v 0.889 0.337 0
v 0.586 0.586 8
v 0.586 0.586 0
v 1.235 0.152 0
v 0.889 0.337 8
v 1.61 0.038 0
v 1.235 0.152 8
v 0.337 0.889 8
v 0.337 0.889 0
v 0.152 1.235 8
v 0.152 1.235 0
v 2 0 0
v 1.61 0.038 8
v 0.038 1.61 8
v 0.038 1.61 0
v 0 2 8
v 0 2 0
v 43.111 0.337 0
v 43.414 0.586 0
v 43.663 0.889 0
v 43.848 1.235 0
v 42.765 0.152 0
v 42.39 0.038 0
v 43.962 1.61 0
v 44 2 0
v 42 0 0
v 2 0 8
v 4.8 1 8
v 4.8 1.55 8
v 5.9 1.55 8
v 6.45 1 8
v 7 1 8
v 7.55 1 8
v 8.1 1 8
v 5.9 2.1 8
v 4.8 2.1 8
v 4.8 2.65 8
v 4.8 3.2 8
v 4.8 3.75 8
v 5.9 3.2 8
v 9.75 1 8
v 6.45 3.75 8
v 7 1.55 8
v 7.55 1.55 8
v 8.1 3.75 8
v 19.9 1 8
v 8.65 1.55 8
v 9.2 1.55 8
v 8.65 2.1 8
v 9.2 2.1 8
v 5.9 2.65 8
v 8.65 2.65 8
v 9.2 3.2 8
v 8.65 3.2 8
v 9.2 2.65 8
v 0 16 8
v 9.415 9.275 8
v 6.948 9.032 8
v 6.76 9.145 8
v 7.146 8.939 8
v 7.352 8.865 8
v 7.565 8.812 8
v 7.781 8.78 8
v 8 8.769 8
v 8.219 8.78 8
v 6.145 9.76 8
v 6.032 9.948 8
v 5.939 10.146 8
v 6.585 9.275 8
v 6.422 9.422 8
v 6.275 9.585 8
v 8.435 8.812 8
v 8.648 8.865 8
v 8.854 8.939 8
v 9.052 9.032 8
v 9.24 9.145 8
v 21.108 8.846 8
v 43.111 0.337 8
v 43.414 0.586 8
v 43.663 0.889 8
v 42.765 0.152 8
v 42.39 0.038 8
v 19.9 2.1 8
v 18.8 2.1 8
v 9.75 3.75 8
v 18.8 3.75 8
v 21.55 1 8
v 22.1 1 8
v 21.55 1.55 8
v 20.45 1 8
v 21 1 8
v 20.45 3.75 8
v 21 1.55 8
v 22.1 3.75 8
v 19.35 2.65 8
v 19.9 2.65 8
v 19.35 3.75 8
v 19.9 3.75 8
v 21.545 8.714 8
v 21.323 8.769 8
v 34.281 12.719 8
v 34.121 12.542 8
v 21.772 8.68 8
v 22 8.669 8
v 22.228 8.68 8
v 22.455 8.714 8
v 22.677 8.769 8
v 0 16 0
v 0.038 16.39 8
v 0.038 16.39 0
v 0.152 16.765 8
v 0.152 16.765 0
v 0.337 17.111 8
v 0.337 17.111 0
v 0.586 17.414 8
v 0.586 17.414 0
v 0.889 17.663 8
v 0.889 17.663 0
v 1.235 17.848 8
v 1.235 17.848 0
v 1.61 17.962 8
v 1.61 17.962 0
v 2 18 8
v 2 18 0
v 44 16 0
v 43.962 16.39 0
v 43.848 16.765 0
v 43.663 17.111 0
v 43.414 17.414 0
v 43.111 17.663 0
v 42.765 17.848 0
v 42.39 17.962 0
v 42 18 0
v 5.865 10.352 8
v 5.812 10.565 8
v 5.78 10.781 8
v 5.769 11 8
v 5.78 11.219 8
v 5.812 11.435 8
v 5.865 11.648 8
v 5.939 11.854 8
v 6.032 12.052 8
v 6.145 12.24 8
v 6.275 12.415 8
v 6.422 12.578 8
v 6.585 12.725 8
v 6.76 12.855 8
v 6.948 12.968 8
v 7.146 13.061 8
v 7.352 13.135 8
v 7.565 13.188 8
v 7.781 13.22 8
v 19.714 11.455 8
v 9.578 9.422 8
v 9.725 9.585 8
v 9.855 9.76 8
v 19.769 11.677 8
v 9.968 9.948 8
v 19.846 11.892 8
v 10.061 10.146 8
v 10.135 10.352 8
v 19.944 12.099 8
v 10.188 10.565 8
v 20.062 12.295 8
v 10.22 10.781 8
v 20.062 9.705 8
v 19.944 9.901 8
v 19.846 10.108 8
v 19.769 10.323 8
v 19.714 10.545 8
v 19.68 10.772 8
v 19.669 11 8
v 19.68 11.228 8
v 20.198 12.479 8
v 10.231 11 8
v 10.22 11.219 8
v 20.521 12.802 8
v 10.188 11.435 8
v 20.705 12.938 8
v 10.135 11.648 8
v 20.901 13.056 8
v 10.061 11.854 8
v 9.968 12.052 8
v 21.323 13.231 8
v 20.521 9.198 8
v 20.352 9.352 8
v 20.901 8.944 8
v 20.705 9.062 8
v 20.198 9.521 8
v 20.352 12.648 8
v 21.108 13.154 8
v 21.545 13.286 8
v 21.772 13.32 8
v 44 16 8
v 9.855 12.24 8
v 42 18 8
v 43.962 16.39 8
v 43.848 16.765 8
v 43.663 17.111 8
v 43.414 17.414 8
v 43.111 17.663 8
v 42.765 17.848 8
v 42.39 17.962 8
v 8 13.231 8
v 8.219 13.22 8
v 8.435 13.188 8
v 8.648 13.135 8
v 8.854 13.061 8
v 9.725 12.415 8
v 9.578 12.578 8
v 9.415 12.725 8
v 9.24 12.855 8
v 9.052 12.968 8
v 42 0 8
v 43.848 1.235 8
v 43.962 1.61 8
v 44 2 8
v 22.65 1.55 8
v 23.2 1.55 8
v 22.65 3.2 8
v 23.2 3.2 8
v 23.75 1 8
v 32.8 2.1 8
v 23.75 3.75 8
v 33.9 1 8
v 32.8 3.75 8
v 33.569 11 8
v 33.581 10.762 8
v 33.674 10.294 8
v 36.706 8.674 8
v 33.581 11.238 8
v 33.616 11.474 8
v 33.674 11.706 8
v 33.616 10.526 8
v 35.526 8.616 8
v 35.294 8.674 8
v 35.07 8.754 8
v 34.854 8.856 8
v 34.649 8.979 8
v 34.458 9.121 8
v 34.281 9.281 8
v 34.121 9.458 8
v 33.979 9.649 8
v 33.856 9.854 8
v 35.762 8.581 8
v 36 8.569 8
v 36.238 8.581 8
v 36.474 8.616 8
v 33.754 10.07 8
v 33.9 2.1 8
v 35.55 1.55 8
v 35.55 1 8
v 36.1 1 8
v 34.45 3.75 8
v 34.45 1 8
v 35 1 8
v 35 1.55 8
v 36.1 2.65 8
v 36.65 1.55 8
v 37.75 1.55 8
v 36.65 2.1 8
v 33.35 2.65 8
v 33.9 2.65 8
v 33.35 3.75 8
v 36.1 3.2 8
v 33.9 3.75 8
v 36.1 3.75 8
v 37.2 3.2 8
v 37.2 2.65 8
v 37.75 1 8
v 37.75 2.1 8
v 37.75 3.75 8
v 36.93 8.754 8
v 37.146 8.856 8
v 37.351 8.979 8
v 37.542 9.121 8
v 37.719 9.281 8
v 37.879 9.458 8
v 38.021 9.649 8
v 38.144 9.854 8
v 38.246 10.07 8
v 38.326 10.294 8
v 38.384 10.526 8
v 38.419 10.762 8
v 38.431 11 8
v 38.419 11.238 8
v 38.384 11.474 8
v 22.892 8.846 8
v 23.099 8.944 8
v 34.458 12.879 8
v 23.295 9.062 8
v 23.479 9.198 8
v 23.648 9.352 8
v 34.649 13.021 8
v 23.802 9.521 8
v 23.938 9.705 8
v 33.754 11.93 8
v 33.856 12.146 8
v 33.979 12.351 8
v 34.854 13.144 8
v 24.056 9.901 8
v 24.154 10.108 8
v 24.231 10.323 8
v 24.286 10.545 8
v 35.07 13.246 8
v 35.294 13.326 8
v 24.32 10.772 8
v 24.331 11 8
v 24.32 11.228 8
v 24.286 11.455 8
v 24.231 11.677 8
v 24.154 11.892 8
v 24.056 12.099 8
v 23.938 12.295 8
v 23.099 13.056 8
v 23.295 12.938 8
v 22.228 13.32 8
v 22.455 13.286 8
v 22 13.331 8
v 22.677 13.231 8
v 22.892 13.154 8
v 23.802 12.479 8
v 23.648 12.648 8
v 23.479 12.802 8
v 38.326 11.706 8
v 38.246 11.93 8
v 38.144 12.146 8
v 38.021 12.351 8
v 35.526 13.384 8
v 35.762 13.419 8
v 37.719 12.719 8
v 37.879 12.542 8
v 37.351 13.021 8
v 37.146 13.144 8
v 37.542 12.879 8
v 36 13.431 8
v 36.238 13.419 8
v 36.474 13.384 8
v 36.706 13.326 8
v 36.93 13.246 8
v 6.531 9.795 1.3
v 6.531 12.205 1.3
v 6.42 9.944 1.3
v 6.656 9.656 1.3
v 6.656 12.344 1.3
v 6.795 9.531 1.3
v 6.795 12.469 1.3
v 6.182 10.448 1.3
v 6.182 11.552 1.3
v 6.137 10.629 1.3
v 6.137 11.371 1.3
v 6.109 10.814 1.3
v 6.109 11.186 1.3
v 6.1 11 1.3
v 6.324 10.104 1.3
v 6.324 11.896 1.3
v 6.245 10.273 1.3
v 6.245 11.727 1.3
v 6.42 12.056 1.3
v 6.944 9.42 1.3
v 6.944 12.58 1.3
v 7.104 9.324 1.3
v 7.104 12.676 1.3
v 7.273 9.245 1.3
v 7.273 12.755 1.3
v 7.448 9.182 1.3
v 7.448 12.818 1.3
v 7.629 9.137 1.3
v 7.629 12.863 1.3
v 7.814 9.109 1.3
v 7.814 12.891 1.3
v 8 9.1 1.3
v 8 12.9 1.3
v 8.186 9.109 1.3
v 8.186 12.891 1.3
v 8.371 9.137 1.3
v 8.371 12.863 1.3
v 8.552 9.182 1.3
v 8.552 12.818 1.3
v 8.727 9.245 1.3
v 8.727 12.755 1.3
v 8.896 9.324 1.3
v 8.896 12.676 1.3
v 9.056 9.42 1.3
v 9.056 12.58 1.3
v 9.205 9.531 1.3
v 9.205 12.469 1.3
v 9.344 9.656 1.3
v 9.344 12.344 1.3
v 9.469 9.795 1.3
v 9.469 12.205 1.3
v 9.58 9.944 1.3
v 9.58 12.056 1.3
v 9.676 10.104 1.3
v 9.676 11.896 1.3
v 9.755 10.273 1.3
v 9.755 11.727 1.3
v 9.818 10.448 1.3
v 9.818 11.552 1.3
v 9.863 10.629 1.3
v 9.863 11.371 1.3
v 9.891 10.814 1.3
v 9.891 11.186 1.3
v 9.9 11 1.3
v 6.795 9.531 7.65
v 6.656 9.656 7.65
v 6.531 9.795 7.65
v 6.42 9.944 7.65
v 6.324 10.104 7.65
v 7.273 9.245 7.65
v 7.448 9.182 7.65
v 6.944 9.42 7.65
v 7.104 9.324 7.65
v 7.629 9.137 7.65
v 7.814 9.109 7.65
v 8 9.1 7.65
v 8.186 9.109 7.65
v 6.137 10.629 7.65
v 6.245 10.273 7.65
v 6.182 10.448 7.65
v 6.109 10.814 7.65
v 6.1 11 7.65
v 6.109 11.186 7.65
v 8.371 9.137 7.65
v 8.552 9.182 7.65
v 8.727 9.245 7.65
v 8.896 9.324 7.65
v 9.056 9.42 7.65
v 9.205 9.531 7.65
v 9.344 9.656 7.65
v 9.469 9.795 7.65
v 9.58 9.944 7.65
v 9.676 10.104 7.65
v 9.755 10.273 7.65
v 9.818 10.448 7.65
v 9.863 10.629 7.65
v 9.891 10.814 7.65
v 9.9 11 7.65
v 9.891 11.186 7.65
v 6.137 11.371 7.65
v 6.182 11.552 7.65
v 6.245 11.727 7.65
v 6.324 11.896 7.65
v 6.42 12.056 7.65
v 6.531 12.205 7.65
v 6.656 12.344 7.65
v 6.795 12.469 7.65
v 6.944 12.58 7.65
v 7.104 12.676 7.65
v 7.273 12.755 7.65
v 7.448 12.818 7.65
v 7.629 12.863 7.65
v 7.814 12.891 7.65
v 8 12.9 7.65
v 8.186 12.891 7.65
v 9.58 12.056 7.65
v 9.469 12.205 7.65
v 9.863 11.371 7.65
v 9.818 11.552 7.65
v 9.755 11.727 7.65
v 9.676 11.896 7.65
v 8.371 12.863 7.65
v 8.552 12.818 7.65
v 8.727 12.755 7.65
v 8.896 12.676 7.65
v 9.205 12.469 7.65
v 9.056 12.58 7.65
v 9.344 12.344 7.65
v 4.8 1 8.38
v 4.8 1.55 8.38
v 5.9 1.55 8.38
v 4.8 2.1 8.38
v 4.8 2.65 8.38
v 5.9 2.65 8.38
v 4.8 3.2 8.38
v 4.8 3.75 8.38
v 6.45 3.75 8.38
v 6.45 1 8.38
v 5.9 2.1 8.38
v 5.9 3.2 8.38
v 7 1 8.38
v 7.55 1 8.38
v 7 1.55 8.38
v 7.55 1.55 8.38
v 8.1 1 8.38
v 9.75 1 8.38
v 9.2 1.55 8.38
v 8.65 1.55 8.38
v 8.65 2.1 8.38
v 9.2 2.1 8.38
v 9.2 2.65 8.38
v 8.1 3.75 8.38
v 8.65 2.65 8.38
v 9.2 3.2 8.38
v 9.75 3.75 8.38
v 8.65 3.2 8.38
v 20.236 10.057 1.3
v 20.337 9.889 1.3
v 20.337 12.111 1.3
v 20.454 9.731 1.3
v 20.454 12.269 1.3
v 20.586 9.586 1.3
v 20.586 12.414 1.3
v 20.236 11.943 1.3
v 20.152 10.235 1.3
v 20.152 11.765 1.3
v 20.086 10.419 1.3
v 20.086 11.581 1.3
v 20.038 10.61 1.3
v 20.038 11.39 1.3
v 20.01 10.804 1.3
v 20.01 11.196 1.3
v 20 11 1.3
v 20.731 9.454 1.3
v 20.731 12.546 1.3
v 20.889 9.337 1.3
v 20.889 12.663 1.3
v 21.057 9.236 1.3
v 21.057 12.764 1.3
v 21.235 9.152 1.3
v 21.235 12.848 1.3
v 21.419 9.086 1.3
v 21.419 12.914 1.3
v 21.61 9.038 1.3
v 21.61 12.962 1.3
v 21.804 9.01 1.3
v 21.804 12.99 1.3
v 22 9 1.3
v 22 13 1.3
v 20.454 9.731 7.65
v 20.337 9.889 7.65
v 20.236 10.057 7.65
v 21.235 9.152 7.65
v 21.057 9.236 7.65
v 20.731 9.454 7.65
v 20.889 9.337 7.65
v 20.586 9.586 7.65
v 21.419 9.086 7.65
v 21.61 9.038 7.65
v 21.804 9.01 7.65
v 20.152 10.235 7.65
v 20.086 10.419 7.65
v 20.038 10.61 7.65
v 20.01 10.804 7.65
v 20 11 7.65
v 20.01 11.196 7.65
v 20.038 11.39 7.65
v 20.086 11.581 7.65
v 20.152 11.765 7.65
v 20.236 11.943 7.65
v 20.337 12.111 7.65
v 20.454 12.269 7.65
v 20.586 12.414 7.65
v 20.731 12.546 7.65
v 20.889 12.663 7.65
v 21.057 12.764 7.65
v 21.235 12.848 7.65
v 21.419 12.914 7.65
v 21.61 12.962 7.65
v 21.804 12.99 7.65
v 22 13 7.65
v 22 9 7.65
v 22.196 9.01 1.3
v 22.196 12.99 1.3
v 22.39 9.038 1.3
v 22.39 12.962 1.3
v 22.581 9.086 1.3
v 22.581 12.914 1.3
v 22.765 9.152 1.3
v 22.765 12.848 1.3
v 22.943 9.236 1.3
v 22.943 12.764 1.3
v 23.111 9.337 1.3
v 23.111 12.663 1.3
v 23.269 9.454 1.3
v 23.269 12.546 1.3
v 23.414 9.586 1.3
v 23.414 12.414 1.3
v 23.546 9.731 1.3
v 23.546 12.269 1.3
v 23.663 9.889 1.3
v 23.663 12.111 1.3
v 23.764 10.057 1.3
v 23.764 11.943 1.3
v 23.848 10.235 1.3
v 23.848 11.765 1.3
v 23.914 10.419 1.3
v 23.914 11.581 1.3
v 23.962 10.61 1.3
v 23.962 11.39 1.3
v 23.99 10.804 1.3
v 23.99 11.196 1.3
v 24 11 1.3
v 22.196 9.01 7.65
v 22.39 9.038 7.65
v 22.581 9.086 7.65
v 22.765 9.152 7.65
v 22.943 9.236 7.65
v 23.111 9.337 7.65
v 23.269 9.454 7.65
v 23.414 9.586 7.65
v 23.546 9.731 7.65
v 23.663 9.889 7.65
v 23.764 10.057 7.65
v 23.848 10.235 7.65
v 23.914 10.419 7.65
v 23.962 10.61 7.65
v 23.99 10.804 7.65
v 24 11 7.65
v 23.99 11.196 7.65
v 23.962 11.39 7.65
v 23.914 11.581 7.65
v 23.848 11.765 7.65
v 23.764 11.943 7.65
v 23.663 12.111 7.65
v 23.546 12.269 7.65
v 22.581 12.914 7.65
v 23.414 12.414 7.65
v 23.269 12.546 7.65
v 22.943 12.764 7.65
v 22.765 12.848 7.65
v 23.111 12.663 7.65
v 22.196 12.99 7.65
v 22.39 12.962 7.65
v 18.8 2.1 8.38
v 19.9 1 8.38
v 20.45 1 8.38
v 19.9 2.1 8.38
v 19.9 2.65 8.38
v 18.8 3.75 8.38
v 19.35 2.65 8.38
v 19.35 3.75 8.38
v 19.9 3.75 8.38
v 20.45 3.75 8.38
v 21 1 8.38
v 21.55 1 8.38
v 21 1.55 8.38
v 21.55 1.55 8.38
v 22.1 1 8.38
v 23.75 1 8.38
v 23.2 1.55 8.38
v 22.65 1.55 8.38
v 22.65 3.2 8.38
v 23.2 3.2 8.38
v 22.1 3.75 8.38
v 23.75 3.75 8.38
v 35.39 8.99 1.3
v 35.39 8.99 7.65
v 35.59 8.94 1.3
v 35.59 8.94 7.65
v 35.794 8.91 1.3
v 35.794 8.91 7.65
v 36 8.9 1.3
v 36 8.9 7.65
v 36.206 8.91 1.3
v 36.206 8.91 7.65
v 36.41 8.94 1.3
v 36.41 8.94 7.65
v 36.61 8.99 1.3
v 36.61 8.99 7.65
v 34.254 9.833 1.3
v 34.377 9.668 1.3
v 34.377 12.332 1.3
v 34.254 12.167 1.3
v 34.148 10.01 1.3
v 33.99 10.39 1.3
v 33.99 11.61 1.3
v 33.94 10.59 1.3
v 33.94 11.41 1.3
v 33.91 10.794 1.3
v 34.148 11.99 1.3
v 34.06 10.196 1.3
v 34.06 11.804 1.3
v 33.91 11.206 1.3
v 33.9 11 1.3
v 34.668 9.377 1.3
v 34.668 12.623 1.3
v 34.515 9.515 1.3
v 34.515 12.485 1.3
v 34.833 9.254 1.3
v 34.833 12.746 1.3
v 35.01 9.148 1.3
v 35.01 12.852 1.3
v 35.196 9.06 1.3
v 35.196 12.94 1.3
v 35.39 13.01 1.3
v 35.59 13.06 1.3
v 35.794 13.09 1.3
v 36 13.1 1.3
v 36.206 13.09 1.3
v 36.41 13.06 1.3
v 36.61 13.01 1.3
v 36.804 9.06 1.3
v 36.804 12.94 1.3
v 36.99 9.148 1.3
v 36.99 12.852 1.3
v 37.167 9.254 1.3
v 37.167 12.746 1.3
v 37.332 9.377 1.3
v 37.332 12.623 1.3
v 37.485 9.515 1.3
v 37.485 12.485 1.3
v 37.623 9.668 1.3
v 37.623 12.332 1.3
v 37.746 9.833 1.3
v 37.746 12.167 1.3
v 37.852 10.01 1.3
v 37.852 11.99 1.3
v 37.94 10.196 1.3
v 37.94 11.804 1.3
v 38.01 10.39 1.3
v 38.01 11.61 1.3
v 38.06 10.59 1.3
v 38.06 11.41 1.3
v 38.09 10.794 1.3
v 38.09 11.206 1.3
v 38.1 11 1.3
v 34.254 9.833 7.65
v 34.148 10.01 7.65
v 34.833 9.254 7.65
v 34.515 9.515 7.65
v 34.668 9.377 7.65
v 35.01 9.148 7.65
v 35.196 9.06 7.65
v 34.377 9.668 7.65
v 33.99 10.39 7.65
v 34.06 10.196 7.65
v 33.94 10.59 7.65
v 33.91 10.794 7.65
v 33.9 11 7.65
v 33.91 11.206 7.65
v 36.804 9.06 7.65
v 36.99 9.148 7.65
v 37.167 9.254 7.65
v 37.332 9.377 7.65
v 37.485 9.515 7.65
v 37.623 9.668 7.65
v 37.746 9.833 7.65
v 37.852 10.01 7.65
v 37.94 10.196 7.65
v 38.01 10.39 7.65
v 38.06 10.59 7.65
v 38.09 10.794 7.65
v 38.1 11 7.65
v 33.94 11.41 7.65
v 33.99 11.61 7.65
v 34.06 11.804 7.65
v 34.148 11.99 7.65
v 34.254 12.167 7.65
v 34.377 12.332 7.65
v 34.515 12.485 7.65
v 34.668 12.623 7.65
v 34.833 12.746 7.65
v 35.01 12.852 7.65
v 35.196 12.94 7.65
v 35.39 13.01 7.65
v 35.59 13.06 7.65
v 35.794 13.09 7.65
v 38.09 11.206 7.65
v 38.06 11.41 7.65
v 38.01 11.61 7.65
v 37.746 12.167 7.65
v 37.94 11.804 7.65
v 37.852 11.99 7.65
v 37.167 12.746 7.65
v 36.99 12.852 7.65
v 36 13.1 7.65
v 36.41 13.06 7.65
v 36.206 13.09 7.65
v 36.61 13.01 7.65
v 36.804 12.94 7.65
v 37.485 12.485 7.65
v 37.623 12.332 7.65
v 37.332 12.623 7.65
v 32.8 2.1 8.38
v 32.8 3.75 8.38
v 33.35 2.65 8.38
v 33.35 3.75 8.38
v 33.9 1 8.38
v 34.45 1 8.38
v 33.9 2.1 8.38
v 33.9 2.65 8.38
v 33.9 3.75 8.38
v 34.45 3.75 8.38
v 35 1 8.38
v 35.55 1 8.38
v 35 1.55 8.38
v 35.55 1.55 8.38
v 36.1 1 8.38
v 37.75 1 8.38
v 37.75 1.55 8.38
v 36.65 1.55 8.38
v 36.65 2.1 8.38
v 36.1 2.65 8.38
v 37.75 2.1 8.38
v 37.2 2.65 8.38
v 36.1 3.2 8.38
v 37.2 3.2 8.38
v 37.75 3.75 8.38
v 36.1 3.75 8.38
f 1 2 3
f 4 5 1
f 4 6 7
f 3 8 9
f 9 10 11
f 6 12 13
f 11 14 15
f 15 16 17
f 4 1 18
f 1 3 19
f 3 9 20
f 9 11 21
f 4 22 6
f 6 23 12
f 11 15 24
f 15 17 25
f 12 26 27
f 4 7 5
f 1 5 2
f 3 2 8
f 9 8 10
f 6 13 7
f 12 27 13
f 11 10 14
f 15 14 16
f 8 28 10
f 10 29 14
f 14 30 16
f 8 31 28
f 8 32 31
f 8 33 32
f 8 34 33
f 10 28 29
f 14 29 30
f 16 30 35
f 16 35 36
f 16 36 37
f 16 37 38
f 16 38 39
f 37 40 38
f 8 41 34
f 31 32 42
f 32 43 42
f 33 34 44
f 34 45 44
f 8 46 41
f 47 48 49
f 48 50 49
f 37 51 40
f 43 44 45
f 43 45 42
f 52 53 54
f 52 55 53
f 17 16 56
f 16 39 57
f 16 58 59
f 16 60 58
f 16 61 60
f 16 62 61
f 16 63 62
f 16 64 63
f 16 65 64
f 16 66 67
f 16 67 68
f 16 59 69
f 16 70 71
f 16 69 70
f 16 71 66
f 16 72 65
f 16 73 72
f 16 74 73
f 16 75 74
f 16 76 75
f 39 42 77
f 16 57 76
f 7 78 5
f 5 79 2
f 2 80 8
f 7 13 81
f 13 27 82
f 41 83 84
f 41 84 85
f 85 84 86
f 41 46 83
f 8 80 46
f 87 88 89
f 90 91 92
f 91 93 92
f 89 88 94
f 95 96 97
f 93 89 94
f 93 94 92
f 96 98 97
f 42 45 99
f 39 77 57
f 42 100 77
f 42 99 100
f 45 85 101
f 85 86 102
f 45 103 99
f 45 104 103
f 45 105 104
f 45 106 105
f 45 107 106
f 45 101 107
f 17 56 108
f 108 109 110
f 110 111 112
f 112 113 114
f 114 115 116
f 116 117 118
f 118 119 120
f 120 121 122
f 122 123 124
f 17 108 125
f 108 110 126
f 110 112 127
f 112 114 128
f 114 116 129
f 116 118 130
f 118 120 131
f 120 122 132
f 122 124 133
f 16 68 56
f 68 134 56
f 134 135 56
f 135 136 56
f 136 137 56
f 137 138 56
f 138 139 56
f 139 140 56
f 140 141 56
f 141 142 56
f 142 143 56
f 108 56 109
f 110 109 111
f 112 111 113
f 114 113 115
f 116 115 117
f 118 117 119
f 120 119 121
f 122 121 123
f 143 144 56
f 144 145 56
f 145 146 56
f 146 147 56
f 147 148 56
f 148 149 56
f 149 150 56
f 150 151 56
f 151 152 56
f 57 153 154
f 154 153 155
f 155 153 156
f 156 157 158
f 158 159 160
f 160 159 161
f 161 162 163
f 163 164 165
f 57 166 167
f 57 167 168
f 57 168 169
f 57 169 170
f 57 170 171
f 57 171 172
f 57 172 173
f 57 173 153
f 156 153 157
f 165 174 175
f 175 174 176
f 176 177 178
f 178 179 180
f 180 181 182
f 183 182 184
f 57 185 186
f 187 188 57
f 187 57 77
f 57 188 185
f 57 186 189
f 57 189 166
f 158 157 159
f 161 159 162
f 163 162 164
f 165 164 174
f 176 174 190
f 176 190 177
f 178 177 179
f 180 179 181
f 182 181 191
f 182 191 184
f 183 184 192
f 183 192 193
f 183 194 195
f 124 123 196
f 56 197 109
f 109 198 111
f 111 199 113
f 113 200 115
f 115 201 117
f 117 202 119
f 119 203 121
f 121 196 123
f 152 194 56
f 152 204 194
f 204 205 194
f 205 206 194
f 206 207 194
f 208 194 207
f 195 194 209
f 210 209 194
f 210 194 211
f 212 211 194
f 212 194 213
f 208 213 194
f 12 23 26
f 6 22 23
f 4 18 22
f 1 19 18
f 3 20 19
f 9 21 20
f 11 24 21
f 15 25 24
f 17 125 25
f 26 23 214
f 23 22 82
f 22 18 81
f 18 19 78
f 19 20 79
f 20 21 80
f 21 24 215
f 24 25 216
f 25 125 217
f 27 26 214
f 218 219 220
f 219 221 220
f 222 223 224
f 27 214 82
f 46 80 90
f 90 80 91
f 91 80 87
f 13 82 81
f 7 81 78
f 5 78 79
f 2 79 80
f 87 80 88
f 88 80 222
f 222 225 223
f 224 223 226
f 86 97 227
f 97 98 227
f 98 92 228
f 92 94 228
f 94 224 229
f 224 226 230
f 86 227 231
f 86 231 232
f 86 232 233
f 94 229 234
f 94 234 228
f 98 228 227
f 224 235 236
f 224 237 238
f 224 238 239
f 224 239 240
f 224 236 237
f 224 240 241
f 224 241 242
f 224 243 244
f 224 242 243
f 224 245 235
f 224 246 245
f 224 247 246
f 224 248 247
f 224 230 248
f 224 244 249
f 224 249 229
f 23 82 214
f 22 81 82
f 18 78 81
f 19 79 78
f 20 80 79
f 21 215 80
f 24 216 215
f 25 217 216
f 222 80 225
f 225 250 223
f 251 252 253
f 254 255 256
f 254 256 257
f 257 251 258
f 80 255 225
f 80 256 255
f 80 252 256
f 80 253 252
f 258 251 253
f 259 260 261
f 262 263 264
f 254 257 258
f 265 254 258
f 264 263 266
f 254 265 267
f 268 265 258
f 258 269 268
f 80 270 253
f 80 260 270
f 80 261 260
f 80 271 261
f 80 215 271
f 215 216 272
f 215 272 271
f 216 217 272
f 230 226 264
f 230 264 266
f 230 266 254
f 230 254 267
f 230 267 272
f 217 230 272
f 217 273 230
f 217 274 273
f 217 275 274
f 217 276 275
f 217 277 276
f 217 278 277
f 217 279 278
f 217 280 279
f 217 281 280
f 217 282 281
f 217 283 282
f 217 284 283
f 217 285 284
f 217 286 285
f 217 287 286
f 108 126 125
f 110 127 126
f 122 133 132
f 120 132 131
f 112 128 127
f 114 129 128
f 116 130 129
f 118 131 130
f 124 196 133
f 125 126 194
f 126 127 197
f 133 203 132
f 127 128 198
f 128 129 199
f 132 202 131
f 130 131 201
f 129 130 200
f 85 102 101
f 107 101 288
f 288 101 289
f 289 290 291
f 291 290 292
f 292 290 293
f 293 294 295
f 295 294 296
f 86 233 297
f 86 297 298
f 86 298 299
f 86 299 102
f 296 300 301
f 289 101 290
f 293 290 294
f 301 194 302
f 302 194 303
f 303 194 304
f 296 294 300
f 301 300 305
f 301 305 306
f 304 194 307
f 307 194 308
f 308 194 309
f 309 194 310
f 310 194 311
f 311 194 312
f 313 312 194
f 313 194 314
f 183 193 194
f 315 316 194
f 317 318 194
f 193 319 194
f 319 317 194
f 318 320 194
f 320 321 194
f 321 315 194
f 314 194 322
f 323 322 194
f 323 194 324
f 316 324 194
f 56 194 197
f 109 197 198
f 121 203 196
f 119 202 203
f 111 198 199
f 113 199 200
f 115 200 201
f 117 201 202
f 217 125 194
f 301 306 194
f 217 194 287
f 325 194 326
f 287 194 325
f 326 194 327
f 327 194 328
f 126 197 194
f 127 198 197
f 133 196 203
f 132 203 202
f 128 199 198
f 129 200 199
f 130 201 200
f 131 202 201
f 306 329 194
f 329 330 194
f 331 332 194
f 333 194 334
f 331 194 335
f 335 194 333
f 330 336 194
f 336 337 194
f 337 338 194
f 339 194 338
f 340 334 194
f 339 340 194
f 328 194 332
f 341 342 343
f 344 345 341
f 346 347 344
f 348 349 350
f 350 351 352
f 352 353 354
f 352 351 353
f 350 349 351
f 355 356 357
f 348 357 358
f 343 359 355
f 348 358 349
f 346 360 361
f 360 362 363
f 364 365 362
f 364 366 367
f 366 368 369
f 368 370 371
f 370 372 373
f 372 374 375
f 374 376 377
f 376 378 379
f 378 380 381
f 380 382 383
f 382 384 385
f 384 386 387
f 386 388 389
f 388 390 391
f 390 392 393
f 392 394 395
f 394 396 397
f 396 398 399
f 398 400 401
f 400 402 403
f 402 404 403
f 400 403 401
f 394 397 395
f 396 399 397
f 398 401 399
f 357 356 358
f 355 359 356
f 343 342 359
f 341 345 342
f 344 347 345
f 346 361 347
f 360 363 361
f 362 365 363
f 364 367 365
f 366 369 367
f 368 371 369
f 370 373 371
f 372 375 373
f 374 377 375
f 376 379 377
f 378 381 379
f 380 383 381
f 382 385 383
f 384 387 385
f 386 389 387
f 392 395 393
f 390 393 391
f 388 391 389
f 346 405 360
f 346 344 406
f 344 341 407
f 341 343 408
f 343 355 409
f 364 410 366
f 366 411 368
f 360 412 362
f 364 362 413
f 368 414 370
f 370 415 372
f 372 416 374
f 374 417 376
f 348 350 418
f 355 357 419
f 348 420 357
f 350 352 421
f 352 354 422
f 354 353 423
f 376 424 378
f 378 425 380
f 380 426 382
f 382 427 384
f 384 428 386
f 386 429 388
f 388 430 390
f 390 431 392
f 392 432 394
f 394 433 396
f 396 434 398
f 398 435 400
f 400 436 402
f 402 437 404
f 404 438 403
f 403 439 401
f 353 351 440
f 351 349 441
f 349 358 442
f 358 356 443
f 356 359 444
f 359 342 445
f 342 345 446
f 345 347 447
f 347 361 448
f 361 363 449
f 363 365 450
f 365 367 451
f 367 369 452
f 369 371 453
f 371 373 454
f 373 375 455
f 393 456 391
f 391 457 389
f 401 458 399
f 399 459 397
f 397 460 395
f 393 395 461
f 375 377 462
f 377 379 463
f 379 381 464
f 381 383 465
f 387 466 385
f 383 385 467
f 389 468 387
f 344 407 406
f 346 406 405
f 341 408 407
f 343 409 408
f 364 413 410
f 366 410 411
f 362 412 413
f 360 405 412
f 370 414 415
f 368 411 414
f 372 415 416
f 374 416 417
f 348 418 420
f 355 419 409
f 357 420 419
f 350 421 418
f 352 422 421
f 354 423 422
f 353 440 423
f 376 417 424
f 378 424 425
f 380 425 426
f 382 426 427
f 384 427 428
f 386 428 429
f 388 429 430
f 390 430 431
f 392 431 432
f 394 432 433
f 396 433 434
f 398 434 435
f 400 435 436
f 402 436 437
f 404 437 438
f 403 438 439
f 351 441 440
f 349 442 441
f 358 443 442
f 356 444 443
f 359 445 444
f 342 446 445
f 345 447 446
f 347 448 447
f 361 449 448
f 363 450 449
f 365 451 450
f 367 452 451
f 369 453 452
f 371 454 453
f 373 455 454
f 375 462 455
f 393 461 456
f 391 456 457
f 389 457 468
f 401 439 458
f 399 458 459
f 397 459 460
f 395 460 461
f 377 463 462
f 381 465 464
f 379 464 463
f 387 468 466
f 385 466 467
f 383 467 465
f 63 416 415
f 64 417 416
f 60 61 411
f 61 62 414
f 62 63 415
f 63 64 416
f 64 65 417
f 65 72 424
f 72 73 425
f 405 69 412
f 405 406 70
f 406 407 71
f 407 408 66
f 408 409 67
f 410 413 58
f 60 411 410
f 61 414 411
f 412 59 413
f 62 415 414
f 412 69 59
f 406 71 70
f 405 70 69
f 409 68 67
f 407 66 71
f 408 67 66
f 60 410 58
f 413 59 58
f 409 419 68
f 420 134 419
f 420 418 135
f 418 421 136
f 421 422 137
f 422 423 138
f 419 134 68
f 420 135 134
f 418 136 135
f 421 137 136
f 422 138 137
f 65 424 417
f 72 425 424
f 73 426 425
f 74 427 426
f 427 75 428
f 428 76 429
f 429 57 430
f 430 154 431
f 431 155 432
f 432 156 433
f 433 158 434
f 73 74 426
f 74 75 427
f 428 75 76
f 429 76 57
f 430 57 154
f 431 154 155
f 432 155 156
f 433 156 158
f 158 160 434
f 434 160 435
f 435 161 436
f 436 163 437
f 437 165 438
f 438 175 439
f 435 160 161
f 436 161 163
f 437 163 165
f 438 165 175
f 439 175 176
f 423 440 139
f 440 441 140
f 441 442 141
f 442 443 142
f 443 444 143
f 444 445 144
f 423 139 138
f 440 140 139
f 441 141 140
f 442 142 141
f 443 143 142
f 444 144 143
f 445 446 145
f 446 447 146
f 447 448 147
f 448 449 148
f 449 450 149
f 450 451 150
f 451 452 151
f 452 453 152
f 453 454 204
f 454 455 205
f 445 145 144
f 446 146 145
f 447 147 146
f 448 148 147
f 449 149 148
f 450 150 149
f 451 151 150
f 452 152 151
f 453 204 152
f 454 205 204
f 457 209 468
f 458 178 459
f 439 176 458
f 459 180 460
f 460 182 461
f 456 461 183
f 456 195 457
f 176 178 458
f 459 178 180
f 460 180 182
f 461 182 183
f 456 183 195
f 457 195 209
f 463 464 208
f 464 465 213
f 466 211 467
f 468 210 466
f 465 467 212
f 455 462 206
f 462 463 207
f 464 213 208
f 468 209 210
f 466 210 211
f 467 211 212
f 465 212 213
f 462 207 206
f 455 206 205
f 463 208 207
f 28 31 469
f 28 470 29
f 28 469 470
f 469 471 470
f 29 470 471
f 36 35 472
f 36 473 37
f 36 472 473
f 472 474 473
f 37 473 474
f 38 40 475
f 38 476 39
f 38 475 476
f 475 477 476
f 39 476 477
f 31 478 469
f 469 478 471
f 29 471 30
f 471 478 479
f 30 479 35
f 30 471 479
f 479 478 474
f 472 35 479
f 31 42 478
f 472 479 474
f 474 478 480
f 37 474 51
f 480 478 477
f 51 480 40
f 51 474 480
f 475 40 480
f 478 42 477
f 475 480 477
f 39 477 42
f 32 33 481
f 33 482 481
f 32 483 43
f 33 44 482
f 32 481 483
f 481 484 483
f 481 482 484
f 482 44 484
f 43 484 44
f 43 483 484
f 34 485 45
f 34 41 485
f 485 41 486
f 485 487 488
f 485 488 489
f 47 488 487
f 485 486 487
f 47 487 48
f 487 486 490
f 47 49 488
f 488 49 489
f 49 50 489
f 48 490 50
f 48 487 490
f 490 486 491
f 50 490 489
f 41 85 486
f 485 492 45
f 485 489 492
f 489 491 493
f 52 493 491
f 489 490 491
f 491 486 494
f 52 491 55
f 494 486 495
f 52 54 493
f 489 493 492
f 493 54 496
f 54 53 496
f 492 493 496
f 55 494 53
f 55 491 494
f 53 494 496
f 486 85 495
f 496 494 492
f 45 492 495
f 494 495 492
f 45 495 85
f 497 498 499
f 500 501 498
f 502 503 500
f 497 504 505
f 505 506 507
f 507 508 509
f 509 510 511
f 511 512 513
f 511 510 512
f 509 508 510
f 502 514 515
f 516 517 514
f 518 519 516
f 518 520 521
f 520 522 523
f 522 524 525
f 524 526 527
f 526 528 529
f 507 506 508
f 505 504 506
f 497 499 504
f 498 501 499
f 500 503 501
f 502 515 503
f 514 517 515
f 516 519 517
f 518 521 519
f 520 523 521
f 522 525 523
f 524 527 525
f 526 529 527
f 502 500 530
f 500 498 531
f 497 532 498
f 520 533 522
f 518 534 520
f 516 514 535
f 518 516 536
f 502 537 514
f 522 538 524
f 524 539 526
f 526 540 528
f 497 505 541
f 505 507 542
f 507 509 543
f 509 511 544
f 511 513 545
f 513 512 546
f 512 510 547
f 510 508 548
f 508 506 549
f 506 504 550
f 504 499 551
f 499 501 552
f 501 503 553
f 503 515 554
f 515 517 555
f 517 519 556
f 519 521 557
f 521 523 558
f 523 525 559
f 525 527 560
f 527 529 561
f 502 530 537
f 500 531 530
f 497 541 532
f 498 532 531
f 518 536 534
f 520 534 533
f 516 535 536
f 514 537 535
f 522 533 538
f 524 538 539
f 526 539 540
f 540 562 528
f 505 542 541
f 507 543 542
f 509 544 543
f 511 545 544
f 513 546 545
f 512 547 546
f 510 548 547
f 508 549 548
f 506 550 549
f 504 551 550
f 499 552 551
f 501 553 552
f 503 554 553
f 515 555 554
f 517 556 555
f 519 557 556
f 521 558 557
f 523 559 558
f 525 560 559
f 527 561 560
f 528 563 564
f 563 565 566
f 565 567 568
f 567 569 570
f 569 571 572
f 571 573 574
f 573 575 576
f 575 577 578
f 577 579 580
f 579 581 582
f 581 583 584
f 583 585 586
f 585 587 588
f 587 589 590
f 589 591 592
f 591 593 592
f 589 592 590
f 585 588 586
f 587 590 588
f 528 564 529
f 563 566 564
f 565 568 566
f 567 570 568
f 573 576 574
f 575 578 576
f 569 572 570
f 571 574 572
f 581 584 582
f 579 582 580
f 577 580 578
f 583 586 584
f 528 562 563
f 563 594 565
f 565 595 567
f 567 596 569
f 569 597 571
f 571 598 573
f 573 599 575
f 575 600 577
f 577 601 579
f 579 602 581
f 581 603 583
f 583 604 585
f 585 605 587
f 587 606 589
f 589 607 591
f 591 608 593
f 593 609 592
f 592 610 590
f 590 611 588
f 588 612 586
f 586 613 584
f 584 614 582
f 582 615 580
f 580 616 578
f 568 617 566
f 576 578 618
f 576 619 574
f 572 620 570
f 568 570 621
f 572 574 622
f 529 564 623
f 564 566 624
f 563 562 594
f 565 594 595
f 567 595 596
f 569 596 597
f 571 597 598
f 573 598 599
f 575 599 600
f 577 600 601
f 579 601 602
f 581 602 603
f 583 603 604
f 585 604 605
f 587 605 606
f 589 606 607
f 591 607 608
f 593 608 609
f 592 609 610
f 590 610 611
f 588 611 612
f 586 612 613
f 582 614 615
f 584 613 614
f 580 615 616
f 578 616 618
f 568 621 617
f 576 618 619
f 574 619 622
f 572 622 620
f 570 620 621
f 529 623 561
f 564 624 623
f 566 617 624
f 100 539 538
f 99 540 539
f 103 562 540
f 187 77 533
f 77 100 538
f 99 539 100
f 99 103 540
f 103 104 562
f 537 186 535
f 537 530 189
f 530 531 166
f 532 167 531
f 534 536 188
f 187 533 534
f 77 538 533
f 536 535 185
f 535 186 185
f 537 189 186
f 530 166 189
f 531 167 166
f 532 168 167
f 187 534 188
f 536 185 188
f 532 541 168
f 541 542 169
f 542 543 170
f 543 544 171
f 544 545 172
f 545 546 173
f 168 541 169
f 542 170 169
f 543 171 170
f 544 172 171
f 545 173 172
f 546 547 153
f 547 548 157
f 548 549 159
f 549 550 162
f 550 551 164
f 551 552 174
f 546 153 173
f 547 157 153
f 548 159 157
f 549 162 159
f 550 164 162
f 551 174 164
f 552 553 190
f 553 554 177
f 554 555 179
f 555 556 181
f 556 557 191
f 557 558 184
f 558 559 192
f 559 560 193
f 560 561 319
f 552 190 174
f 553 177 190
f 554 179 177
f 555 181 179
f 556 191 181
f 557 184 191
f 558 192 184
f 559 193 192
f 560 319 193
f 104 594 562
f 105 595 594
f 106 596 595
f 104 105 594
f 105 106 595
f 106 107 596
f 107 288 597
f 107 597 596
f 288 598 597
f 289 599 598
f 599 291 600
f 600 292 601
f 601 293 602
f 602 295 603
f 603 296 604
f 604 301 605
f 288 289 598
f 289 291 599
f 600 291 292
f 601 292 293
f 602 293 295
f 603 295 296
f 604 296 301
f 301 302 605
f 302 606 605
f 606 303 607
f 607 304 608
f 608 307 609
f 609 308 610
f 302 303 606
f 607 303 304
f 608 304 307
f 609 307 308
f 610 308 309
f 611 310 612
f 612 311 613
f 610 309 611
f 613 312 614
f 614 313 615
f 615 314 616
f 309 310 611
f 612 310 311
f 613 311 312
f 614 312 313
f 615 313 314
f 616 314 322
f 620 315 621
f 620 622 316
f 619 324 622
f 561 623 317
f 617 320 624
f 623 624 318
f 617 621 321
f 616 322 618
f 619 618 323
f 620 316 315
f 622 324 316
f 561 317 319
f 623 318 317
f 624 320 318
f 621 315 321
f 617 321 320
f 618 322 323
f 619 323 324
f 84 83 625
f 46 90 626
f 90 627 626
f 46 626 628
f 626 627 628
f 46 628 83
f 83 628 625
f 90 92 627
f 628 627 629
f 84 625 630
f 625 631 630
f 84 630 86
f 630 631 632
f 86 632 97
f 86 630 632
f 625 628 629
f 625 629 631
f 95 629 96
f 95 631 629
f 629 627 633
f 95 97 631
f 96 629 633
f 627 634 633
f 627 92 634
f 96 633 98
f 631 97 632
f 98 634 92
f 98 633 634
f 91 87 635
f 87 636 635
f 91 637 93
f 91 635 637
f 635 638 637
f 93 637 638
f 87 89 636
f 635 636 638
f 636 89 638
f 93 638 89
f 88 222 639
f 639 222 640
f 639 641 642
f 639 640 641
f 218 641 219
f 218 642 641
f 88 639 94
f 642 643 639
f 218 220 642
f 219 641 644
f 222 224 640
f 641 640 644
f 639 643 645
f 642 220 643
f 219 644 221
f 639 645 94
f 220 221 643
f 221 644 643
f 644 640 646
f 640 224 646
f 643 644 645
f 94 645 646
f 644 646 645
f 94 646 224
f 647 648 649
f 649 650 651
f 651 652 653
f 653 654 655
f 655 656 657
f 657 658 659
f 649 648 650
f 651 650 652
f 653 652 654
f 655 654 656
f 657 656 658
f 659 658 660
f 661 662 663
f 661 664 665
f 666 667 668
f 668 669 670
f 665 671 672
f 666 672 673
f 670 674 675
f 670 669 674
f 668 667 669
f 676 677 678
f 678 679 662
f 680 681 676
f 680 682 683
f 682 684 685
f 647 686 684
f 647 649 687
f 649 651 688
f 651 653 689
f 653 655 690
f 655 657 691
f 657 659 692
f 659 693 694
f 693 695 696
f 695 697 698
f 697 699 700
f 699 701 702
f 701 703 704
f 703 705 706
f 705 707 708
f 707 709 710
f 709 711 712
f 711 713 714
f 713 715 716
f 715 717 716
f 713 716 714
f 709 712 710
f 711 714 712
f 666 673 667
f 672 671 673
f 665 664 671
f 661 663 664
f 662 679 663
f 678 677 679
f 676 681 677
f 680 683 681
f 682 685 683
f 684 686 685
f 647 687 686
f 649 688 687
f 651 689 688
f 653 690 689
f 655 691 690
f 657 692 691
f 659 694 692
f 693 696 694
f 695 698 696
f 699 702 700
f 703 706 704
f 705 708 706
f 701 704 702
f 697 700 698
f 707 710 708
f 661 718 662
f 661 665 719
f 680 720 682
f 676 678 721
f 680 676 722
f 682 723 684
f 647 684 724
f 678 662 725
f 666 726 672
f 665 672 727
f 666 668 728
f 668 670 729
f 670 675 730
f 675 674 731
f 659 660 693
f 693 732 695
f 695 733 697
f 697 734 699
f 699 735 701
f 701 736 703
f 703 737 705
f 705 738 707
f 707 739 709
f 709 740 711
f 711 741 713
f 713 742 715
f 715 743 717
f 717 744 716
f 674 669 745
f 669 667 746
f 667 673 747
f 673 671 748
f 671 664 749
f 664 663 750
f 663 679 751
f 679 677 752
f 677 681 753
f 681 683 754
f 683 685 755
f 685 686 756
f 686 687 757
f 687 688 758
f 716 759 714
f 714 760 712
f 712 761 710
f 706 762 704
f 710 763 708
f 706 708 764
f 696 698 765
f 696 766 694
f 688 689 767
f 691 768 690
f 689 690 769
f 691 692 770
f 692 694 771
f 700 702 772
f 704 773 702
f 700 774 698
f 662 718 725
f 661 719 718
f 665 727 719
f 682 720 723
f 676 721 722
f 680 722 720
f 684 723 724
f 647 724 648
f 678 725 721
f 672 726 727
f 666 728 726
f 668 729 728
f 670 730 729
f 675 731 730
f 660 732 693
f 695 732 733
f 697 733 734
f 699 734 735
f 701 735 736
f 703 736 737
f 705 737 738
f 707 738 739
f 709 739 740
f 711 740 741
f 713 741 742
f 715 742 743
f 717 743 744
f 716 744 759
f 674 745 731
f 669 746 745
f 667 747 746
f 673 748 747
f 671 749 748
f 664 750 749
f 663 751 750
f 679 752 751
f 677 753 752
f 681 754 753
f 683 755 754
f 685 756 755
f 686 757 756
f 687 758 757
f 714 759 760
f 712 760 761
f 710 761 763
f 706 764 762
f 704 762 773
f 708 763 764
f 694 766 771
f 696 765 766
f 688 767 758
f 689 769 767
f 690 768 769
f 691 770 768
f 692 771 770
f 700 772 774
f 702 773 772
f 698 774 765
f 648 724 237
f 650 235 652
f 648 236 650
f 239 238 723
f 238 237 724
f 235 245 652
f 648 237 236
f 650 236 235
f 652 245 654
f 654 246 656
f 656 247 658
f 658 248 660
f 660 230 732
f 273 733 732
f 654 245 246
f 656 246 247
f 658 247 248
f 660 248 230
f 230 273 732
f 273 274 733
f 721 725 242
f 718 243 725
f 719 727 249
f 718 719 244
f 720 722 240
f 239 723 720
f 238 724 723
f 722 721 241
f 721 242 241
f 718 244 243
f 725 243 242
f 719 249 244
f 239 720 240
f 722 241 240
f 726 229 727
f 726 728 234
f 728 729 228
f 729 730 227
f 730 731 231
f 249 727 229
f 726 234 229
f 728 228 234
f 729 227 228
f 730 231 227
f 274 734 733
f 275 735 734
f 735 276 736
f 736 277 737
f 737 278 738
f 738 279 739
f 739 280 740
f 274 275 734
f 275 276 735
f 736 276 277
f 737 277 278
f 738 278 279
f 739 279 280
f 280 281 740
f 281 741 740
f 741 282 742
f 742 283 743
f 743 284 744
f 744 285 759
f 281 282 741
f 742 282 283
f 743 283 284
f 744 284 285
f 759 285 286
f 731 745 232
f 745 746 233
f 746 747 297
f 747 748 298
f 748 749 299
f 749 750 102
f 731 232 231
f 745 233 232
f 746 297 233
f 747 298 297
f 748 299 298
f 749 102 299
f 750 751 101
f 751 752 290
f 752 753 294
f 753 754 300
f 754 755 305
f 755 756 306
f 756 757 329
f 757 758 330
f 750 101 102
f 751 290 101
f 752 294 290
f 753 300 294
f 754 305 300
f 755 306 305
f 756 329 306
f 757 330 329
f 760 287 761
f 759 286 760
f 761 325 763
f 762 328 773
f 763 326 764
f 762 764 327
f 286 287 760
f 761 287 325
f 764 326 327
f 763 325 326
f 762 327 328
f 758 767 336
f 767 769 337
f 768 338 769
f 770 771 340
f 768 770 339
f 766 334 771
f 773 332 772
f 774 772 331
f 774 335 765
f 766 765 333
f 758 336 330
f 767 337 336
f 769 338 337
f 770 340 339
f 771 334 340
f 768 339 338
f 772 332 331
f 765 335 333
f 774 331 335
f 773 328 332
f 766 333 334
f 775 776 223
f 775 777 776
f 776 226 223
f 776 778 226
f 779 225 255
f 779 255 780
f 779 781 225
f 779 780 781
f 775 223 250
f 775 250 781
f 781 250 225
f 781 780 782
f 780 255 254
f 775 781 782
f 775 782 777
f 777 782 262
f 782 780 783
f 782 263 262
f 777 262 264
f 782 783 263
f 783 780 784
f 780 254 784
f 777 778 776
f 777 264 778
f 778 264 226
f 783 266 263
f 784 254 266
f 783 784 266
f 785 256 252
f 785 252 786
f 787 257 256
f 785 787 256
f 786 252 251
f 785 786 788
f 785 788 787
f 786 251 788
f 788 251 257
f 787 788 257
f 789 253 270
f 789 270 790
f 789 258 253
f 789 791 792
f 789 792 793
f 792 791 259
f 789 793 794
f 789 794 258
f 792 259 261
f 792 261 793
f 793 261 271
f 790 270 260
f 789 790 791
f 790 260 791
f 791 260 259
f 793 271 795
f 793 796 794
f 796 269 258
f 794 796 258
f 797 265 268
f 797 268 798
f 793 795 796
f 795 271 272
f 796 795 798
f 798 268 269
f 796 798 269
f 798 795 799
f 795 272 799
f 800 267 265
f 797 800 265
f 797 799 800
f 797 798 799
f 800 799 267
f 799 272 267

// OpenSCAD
// mm / generated from rev3-parameters.json
union(){
difference(){
union(){
difference(){
union(){
difference(){
translate([0, 0, 0]){
linear_extrude(height=8.0) polygon(points=[[42.0, 0.0], [2.0, 0.0], [1.609819, 0.038429], [1.234633, 0.152241], [0.88886, 0.337061], [0.585786, 0.585786], [0.337061, 0.88886], [0.152241, 1.234633], [0.038429, 1.609819], [0.0, 2.0], [0.0, 16.0], [0.038429, 16.390181], [0.152241, 16.765367], [0.337061, 17.11114], [0.585786, 17.414214], [0.88886, 17.662939], [1.234633, 17.847759], [1.609819, 17.961571], [2.0, 18.0], [42.0, 18.0], [42.390181, 17.961571], [42.765367, 17.847759], [43.11114, 17.662939], [43.414214, 17.414214], [43.662939, 17.11114], [43.847759, 16.765367], [43.961571, 16.390181], [44.0, 16.0], [44.0, 2.0], [43.961571, 1.609819], [43.847759, 1.234633], [43.662939, 0.88886], [43.414214, 0.585786], [43.11114, 0.337061], [42.765367, 0.152241], [42.390181, 0.038429]],paths=[[0, 1, 2, 3, 4, 5, 6, 7, 8, 9, 10, 11, 12, 13, 14, 15, 16, 17, 18, 19, 20, 21, 22, 23, 24, 25, 26, 27, 28, 29, 30, 31, 32, 33, 34, 35]]);
}
union(){
translate([8, 11, 1.2999999999999998]){
cylinder(h=6.72,d1=3.8,d2=3.8,$fn=64);
}
translate([8, 11, 7.65]){
cylinder(h=0.37,d1=3.8,d2=4.5,$fn=64);
}
}
}
union(){
translate([0, 0, 7.98]){
linear_extrude(height=0.4) polygon(points=[[5.9, 1.55], [5.9, 2.1], [5.35, 2.1], [4.8, 2.1], [4.8, 2.65], [5.35, 2.65], [5.9, 2.65], [5.9, 3.2], [5.35, 3.2], [4.8, 3.2], [4.8, 3.75], [5.35, 3.75], [5.9, 3.75], [6.45, 3.75], [6.45, 3.2], [6.45, 2.65], [6.45, 2.1], [6.45, 1.55], [6.45, 1.0], [5.9, 1.0], [5.35, 1.0], [4.8, 1.0], [4.8, 1.55], [5.35, 1.55]],paths=[[0, 1, 2, 3, 4, 5, 6, 7, 8, 9, 10, 11, 12, 13, 14, 15, 16, 17, 18, 19, 20, 21, 22, 23]]);
}
translate([0, 0, 7.98]){
linear_extrude(height=0.4) polygon(points=[[7.55, 1.0], [7.0, 1.0], [7.0, 1.55], [7.55, 1.55]],paths=[[0, 1, 2, 3]]);
}
translate([0, 0, 7.98]){
linear_extrude(height=0.4) polygon(points=[[9.2, 3.75], [9.75, 3.75], [9.75, 3.2], [9.75, 2.65], [9.75, 2.1], [9.75, 1.55], [9.75, 1.0], [9.2, 1.0], [8.65, 1.0], [8.1, 1.0], [8.1, 1.55], [8.1, 2.1], [8.1, 2.65], [8.1, 3.2], [8.1, 3.75], [8.65, 3.75], [8.65, 2.1], [8.65, 1.55], [9.2, 1.55], [9.2, 2.1], [9.2, 3.2], [8.65, 3.2], [8.65, 2.65], [9.2, 2.65]],paths=[[0, 1, 2, 3, 4, 5, 6, 7, 8, 9, 10, 11, 12, 13, 14, 15], [16, 17, 18, 19], [20, 21, 22, 23]]);
}
}
}
union(){
translate([22, 11, 1.2999999999999998]){
cylinder(h=6.72,d1=4.0,d2=4.0,$fn=64);
}
translate([22, 11, 7.65]){
cylinder(h=0.37,d1=4.0,d2=4.7,$fn=64);
}
}
}
union(){
translate([0, 0, 7.98]){
linear_extrude(height=0.4) polygon(points=[[19.35, 2.1], [18.8, 2.1], [18.8, 2.65], [18.8, 3.2], [18.8, 3.75], [19.35, 3.75], [19.35, 3.2], [19.35, 2.65], [19.9, 2.65], [19.9, 3.2], [19.9, 3.75], [20.45, 3.75], [20.45, 3.2], [20.45, 2.65], [20.45, 2.1], [20.45, 1.55], [20.45, 1.0], [19.9, 1.0], [19.9, 1.55], [19.9, 2.1]],paths=[[0, 1, 2, 3, 4, 5, 6, 7, 8, 9, 10, 11, 12, 13, 14, 15, 16, 17, 18, 19]]);
}
translate([0, 0, 7.98]){
linear_extrude(height=0.4) polygon(points=[[21.55, 1.0], [21.0, 1.0], [21.0, 1.55], [21.55, 1.55]],paths=[[0, 1, 2, 3]]);
}
translate([0, 0, 7.98]){
linear_extrude(height=0.4) polygon(points=[[22.1, 3.75], [22.65, 3.75], [23.2, 3.75], [23.75, 3.75], [23.75, 3.2], [23.75, 2.65], [23.75, 2.1], [23.75, 1.55], [23.75, 1.0], [23.2, 1.0], [22.65, 1.0], [22.1, 1.0], [22.1, 1.55], [22.1, 2.1], [22.1, 2.65], [22.1, 3.2], [22.65, 2.1], [22.65, 1.55], [23.2, 1.55], [23.2, 2.1], [23.2, 2.65], [23.2, 3.2], [22.65, 3.2], [22.65, 2.65]],paths=[[0, 1, 2, 3, 4, 5, 6, 7, 8, 9, 10, 11, 12, 13, 14, 15], [16, 17, 18, 19, 20, 21, 22, 23]]);
}
}
}
union(){
translate([36, 11, 1.2999999999999998]){
cylinder(h=6.72,d1=4.2,d2=4.2,$fn=64);
}
translate([36, 11, 7.65]){
cylinder(h=0.37,d1=4.2,d2=4.9,$fn=64);
}
}
}
union(){
translate([0, 0, 7.98]){
linear_extrude(height=0.4) polygon(points=[[33.35, 2.1], [32.8, 2.1], [32.8, 2.65], [32.8, 3.2], [32.8, 3.75], [33.35, 3.75], [33.35, 3.2], [33.35, 2.65], [33.9, 2.65], [33.9, 3.2], [33.9, 3.75], [34.45, 3.75], [34.45, 3.2], [34.45, 2.65], [34.45, 2.1], [34.45, 1.55], [34.45, 1.0], [33.9, 1.0], [33.9, 1.55], [33.9, 2.1]],paths=[[0, 1, 2, 3, 4, 5, 6, 7, 8, 9, 10, 11, 12, 13, 14, 15, 16, 17, 18, 19]]);
}
translate([0, 0, 7.98]){
linear_extrude(height=0.4) polygon(points=[[35.55, 1.0], [35.0, 1.0], [35.0, 1.55], [35.55, 1.55]],paths=[[0, 1, 2, 3]]);
}
translate([0, 0, 7.98]){
linear_extrude(height=0.4) polygon(points=[[37.2, 3.75], [37.75, 3.75], [37.75, 3.2], [37.75, 2.65], [37.75, 2.1], [37.2, 2.1], [36.65, 2.1], [36.65, 1.55], [37.2, 1.55], [37.75, 1.55], [37.75, 1.0], [37.2, 1.0], [36.65, 1.0], [36.1, 1.0], [36.1, 1.55], [36.1, 2.1], [36.1, 2.65], [36.65, 2.65], [37.2, 2.65], [37.2, 3.2], [36.65, 3.2], [36.1, 3.2], [36.1, 3.75], [36.65, 3.75]],paths=[[0, 1, 2, 3, 4, 5, 6, 7, 8, 9, 10, 11, 12, 13, 14, 15, 16, 17, 18, 19, 20, 21, 22, 23]]);
}
}
}
